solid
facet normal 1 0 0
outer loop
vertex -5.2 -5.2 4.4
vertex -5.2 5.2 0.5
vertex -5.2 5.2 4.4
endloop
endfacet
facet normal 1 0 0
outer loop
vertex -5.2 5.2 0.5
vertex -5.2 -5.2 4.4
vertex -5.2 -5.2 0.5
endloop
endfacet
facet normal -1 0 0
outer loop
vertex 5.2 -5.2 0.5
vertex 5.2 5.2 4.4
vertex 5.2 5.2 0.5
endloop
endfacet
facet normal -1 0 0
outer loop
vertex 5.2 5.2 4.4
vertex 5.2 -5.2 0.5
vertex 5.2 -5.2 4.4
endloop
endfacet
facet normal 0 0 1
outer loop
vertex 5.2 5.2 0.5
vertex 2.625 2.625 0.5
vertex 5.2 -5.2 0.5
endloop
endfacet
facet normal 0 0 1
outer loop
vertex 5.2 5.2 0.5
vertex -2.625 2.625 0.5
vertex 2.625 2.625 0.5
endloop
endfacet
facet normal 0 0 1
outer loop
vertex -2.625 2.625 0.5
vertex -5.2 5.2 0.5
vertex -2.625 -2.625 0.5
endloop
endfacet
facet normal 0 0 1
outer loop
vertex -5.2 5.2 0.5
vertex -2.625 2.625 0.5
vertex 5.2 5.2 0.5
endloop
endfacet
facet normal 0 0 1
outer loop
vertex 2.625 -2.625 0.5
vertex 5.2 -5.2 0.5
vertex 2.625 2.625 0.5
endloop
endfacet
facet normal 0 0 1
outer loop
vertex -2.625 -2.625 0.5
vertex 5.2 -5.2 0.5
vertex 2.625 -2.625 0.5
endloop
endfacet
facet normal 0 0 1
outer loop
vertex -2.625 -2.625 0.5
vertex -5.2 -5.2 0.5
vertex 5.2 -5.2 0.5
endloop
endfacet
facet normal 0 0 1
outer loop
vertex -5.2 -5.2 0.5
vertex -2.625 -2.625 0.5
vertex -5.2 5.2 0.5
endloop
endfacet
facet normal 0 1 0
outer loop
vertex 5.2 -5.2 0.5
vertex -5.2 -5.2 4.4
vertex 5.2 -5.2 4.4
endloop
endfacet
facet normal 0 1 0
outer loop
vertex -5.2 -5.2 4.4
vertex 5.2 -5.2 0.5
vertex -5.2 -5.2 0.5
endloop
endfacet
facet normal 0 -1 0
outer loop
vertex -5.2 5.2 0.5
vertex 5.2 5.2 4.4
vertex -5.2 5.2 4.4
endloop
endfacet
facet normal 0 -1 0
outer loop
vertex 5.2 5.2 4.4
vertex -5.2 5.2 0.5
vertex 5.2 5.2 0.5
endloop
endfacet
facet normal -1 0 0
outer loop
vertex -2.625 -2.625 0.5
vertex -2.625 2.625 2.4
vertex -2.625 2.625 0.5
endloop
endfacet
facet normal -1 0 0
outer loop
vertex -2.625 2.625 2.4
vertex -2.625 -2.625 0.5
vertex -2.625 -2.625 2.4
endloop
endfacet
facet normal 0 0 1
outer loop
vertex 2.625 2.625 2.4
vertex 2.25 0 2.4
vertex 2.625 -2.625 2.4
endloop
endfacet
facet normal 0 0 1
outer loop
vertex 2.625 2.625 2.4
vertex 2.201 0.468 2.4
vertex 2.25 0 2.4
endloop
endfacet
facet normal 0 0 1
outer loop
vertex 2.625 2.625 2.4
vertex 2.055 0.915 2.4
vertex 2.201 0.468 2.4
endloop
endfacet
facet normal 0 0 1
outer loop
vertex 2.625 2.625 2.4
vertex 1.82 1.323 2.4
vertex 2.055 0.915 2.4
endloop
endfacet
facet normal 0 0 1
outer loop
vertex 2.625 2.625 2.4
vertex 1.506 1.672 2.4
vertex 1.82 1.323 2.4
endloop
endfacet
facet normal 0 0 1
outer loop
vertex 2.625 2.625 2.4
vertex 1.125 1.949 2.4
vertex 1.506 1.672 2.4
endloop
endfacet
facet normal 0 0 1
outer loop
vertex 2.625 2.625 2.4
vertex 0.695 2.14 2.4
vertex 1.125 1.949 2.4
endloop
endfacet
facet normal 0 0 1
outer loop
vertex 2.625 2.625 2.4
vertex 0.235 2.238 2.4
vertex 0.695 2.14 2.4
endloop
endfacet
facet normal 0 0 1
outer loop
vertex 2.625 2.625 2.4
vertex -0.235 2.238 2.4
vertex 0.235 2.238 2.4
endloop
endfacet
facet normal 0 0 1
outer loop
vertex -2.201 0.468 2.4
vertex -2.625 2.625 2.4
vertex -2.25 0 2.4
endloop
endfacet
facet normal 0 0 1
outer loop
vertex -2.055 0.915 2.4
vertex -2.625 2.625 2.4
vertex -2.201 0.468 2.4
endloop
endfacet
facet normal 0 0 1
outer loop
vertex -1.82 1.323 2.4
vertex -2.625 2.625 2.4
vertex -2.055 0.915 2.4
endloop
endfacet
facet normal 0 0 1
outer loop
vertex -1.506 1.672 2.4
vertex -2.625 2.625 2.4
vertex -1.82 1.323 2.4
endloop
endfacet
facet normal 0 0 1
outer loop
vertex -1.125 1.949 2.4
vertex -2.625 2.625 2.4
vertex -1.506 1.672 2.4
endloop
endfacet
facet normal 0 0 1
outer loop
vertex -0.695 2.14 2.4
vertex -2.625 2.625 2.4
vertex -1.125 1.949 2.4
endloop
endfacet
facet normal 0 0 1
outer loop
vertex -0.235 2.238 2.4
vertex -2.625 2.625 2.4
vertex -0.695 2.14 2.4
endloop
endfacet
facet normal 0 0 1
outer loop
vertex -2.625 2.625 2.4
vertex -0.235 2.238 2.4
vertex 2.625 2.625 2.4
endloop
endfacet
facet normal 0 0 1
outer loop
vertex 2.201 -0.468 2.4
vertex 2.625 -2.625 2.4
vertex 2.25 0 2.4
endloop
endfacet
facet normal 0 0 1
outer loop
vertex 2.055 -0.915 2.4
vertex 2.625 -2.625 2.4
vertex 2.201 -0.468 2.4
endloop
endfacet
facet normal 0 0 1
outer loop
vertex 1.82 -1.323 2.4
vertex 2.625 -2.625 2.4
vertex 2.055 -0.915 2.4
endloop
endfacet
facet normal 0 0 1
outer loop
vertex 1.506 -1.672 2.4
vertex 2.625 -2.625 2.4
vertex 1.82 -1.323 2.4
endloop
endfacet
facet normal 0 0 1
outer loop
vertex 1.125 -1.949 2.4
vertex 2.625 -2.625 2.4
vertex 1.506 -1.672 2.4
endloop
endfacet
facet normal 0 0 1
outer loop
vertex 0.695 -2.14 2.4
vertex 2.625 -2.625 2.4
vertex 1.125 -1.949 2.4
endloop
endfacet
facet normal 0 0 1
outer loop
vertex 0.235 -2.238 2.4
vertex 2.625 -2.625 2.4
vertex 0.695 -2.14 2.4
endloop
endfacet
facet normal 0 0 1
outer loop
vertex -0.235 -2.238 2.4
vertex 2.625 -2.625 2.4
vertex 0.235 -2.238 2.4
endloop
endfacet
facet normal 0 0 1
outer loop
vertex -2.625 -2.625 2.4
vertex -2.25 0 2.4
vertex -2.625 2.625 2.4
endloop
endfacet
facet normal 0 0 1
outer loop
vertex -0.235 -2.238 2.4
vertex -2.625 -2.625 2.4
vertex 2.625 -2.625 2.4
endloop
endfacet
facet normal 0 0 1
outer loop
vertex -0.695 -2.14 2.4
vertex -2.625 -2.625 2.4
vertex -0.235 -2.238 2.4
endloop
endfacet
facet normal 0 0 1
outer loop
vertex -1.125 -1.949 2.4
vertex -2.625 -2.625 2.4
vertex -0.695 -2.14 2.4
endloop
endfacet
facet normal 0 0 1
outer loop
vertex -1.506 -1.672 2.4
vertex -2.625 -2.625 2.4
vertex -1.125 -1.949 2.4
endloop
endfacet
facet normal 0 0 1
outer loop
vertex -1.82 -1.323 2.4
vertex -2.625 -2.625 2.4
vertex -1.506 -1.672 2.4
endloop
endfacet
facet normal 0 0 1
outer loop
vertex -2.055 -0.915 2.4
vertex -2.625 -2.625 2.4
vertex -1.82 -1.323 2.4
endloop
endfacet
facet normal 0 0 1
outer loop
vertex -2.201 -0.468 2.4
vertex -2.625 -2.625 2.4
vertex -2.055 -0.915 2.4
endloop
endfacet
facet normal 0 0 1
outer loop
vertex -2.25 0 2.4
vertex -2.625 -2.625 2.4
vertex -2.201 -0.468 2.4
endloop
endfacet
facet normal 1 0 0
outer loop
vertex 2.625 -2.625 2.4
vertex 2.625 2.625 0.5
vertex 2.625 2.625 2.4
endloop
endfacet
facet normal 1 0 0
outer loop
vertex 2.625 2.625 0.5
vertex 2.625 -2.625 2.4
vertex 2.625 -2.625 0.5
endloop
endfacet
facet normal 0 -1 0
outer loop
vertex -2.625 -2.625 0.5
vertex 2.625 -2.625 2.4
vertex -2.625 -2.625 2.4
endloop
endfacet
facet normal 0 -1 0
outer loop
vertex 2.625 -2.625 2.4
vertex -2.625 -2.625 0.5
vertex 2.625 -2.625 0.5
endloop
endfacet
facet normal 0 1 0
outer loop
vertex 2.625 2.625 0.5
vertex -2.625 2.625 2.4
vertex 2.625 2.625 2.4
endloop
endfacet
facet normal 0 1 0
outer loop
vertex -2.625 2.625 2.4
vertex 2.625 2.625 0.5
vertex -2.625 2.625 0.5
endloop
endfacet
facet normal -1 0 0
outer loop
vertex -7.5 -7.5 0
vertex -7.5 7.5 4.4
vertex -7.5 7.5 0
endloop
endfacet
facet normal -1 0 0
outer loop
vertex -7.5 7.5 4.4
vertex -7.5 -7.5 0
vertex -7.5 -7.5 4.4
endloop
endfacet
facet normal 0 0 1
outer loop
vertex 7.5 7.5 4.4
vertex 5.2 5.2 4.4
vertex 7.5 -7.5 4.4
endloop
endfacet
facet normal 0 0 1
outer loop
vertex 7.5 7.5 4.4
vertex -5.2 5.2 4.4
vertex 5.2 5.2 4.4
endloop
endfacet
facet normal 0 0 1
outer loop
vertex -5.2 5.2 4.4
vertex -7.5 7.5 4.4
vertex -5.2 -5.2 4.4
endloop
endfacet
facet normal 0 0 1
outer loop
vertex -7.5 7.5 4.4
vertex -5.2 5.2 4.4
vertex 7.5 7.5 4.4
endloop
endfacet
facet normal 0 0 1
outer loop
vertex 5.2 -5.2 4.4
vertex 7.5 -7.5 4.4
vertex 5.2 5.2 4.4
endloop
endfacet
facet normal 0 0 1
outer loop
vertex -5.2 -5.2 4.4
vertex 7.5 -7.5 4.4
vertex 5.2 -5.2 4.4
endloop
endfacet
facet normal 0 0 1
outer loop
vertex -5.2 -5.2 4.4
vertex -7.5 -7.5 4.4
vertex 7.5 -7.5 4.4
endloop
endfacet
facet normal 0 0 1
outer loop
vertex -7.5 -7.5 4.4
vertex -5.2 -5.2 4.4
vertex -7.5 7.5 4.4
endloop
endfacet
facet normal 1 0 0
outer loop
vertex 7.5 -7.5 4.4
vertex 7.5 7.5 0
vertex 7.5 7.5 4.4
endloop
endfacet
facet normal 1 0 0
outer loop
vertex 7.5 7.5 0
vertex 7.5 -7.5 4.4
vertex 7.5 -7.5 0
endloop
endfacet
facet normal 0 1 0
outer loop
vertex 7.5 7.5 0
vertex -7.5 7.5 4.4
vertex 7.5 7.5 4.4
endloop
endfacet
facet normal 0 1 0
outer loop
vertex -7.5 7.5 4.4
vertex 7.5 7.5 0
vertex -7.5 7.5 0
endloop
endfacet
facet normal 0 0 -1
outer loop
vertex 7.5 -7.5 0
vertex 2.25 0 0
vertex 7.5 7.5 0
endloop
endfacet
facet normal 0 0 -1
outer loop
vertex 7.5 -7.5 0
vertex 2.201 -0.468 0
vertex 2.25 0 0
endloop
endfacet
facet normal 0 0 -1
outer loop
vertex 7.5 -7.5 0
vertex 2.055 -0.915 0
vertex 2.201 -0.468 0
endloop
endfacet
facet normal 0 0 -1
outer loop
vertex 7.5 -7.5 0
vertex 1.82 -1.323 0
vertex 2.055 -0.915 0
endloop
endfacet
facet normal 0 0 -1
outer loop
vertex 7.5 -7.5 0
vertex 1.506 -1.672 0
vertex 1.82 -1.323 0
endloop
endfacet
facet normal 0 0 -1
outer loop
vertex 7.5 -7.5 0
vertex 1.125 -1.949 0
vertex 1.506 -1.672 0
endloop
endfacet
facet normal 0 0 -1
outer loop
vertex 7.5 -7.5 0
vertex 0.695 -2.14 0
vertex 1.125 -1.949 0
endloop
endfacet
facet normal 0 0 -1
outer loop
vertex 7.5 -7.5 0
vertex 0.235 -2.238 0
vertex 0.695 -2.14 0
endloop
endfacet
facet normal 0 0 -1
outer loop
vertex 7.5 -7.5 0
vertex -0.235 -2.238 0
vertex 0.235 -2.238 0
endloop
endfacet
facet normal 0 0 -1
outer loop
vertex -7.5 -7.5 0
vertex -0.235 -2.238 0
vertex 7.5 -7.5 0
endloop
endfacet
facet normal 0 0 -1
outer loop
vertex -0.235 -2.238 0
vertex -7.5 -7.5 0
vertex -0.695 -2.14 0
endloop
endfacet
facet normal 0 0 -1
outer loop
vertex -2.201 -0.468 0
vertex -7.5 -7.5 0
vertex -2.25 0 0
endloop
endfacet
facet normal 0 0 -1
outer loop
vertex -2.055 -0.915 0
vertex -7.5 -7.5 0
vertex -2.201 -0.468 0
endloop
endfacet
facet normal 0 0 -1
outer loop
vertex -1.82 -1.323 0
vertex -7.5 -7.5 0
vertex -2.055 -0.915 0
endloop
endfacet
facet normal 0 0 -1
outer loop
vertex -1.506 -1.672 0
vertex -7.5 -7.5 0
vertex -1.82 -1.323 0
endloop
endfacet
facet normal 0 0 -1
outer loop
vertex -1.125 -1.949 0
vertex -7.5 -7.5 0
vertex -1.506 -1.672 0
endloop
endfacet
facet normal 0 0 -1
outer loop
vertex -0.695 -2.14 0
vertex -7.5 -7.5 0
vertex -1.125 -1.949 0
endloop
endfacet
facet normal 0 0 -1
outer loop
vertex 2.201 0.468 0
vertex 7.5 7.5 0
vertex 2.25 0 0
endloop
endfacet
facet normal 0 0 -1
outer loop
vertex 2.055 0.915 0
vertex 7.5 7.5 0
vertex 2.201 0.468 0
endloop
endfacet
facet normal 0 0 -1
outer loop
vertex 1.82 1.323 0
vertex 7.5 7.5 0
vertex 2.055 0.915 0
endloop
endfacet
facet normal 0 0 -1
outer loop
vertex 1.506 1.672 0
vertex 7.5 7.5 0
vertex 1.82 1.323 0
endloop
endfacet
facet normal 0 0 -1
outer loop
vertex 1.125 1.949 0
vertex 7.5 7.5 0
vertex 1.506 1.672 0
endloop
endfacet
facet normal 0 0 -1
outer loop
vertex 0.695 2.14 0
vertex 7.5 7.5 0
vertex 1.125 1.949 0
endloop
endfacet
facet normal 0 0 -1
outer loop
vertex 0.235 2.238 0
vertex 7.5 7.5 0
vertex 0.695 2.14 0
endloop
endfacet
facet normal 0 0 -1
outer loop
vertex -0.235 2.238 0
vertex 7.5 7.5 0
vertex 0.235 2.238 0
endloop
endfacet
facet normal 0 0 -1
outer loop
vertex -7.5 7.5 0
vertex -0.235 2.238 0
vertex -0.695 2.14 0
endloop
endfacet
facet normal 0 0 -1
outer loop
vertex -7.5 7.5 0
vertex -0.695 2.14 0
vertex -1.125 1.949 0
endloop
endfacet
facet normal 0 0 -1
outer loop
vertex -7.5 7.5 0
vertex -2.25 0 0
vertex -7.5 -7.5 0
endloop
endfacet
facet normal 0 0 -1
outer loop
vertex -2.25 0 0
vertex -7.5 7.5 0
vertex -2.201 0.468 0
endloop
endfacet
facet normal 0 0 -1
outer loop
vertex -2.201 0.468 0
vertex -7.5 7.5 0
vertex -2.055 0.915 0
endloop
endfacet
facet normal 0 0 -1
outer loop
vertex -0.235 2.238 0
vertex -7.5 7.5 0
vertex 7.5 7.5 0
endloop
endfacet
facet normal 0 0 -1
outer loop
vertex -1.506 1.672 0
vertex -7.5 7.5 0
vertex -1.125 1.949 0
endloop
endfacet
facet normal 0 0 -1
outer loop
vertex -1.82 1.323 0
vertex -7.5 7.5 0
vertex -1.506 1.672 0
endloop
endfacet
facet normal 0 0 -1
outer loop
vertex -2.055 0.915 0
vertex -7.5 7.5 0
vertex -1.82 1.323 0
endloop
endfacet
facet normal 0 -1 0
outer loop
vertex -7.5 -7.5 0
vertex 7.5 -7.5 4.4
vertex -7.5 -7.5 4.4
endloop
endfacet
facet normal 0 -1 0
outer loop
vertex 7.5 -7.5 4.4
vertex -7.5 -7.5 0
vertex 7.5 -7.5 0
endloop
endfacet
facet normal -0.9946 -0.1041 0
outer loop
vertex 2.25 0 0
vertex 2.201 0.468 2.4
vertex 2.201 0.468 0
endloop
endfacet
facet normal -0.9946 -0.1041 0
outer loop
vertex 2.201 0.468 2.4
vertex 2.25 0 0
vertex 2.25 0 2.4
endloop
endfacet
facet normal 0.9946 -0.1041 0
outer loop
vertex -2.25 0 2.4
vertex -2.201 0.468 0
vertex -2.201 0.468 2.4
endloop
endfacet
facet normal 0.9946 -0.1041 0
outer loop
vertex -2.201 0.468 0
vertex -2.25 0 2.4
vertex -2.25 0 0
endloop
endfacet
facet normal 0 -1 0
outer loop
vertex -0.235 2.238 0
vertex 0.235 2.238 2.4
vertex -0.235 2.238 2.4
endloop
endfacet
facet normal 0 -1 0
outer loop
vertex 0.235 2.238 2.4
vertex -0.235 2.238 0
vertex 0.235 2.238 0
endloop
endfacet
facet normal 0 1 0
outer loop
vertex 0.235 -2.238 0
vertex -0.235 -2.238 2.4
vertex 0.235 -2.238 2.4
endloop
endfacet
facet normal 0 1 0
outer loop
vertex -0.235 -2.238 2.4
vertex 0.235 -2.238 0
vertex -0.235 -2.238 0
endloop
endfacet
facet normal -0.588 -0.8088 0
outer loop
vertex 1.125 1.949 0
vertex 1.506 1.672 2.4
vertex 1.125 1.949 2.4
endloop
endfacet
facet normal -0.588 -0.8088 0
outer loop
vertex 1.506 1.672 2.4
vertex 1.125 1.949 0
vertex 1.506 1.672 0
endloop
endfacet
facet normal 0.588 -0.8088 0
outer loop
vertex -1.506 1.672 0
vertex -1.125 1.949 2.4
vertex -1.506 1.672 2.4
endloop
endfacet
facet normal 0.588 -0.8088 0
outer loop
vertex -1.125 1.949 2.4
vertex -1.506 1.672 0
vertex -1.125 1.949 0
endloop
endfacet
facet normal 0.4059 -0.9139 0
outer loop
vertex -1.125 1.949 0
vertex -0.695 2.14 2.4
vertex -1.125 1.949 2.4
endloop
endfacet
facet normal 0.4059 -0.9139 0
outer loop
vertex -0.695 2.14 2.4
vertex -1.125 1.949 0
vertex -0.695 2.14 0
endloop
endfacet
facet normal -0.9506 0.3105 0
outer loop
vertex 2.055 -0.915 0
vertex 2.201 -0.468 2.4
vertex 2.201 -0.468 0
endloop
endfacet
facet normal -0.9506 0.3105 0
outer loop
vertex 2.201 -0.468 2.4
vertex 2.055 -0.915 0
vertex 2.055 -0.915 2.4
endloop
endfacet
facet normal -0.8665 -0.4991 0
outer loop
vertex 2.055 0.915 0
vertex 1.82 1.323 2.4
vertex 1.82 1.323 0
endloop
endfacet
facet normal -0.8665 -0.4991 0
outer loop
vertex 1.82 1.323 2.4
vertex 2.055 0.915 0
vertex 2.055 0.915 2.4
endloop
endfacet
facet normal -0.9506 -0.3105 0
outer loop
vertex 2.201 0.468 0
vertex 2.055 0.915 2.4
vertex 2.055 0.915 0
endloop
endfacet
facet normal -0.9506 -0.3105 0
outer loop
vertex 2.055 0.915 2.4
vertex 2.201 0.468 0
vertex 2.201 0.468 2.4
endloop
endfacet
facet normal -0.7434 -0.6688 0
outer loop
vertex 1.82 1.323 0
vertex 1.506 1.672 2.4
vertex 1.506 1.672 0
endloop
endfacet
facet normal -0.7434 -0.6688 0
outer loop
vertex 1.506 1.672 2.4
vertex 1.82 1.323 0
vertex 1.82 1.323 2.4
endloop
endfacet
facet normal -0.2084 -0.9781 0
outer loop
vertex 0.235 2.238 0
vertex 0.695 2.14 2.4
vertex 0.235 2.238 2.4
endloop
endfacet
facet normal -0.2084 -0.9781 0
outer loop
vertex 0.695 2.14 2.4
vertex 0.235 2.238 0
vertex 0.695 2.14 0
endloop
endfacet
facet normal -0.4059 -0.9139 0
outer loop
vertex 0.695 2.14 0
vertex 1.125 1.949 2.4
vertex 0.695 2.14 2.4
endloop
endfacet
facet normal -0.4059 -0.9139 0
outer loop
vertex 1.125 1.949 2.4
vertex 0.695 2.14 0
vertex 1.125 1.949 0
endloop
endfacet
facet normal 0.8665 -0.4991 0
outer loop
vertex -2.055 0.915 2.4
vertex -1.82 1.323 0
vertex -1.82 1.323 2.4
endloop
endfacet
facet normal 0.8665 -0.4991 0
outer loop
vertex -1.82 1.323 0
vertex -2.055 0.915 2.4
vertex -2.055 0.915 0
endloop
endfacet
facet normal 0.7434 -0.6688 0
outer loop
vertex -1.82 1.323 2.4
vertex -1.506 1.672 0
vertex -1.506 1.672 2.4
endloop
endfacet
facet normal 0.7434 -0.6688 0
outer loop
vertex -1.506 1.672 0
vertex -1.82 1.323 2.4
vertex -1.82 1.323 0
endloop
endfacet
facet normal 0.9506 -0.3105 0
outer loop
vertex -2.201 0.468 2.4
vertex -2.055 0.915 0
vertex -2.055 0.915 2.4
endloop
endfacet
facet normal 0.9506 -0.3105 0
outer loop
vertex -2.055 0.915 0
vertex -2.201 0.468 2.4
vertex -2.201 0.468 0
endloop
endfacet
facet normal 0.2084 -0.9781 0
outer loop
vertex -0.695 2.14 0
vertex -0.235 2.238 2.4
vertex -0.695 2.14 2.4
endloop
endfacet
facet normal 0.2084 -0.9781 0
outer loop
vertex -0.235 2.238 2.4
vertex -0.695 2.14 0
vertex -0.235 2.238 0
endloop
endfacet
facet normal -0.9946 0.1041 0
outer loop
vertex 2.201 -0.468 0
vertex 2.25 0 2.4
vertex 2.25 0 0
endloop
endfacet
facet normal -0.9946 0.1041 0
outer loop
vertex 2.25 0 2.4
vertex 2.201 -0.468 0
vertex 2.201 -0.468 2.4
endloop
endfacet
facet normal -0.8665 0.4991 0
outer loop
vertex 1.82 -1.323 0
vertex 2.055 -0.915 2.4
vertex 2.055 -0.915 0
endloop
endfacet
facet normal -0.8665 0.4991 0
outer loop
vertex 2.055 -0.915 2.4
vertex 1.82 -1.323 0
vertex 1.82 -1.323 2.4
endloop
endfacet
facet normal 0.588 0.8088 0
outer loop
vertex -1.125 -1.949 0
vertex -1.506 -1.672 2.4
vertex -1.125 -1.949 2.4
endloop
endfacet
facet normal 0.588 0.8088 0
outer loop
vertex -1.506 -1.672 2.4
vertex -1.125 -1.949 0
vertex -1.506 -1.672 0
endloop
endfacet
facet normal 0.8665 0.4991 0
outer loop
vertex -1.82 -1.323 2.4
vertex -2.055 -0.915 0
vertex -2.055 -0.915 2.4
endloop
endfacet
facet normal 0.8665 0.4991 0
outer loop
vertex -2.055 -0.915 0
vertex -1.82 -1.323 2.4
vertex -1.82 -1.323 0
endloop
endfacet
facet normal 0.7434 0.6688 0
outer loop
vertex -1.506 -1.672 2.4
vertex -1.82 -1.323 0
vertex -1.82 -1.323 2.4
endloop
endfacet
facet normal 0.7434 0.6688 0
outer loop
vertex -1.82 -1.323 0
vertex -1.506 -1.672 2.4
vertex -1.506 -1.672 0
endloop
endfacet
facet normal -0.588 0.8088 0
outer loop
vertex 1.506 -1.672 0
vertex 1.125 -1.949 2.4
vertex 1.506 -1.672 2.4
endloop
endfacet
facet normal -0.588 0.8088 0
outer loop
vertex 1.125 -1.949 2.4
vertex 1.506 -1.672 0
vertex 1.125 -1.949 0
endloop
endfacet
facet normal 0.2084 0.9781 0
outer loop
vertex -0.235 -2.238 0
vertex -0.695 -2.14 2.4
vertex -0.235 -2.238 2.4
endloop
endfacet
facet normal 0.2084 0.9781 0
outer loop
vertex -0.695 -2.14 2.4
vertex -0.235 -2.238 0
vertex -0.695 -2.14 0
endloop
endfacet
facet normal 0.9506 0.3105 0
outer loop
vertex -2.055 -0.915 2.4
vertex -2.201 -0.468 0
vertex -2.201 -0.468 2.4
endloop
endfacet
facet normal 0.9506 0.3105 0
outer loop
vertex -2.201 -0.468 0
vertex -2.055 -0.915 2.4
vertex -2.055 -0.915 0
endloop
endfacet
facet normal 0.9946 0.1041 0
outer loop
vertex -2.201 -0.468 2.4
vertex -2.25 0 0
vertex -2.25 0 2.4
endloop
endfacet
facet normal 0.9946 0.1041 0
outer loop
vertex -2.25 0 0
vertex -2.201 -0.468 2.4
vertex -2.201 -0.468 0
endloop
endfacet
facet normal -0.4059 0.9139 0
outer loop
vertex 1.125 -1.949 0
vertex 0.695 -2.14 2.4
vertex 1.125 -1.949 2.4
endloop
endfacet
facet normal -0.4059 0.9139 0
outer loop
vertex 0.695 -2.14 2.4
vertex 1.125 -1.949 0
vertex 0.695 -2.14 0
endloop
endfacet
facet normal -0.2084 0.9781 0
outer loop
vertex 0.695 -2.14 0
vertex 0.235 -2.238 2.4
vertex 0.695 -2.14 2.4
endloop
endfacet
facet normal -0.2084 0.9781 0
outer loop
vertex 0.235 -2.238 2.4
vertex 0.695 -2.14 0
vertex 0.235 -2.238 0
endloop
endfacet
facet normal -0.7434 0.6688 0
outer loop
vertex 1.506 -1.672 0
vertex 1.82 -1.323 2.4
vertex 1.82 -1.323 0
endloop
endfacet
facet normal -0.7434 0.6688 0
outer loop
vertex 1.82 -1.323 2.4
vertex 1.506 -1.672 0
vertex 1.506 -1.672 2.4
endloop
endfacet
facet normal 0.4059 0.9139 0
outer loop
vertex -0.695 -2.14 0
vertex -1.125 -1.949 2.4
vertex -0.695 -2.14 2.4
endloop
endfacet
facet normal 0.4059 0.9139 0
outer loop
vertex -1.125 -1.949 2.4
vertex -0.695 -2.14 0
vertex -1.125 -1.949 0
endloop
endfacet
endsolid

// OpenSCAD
height = 1.9;
thickness = 0.5;

difference() {
    translate([-15/2, -15/2, 0]) {
        cube([15, 15, height+2.5]);
    }
    
    difference() {
        translate([-5.2, -5.2, thickness]) {
            cube([10.4, 10.4, height+2.5]);
        }
        
        translate([-5.25/2, -5.25/2, thickness]) {
            cube([5.25, 5.25, height]);
        }
    }
    
    translate([0, 0, -0.1]) {
        cylinder(r=2.25, h=10, $fn=30);
    }
}
